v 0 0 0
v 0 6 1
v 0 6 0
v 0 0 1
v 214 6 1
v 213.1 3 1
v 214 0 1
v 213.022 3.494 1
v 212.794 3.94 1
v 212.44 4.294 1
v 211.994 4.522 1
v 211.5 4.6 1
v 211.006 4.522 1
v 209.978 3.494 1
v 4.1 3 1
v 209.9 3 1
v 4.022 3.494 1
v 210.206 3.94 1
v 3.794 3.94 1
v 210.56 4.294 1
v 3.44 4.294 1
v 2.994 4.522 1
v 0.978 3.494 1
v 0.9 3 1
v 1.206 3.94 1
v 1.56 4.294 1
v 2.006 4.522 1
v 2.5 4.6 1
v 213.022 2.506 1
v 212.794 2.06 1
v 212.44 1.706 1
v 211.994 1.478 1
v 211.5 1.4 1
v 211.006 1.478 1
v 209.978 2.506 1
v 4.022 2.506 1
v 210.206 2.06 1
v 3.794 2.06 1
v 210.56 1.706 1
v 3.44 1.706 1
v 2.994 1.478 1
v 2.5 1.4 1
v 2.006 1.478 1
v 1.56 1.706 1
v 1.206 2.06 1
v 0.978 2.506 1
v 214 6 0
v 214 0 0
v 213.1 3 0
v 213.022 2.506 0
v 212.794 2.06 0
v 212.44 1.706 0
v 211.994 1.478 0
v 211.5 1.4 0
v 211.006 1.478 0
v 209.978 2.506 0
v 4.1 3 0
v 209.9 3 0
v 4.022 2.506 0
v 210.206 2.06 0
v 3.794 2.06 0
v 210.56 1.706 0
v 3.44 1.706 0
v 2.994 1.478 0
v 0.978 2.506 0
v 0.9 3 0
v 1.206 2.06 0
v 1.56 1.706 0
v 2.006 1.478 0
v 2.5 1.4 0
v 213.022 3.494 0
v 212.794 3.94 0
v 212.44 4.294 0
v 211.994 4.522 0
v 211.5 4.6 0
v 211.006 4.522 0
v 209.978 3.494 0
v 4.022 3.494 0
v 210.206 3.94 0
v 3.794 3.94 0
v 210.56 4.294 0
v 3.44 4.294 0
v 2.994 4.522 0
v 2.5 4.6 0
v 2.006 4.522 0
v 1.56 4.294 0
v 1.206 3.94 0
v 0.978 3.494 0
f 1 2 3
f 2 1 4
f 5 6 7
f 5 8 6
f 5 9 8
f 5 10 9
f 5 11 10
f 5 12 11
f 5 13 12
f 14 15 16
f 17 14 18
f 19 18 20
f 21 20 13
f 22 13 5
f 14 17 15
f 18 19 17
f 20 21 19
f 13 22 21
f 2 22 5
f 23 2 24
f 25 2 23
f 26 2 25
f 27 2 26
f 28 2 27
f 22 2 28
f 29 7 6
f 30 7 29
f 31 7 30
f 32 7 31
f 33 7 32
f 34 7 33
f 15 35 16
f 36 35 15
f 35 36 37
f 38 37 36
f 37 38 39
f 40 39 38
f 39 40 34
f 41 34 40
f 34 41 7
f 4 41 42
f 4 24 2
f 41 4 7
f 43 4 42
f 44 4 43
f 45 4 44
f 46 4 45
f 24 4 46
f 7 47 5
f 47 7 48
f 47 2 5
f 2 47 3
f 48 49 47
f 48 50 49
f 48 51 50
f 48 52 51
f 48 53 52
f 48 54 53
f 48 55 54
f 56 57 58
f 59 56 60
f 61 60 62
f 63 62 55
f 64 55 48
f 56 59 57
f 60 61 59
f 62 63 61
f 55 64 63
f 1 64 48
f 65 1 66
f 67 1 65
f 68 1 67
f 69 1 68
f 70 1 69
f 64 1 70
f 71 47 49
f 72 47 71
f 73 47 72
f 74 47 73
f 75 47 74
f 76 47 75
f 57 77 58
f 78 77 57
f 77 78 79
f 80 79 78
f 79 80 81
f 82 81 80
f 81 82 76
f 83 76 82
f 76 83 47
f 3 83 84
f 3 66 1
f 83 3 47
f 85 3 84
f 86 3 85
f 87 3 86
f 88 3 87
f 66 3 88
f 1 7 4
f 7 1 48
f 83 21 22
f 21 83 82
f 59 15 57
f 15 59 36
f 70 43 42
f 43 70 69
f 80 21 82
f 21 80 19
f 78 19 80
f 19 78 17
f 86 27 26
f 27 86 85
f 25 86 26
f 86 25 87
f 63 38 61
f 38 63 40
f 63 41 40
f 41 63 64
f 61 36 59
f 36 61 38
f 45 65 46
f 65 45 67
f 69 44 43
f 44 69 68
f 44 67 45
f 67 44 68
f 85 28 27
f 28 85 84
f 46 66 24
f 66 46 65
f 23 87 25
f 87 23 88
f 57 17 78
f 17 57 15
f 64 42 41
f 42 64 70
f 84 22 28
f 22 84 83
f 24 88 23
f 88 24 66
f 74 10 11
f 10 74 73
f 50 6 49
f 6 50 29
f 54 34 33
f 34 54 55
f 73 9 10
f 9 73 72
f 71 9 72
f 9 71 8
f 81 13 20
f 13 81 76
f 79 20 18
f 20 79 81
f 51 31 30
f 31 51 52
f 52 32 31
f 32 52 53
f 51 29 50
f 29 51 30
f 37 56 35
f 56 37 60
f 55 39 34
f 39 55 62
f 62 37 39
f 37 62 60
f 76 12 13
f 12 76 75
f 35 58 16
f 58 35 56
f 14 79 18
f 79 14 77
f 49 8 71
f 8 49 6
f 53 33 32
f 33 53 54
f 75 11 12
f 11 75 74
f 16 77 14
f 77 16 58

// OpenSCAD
difference() {
    cube([214,6,1]);
    translate([2.5,3,-0.1]) cylinder(d=3.2,h=5,$fn=20);
    translate([2.5+209,3,-0.1]) cylinder(d=3.2,h=5,$fn=20);
}
